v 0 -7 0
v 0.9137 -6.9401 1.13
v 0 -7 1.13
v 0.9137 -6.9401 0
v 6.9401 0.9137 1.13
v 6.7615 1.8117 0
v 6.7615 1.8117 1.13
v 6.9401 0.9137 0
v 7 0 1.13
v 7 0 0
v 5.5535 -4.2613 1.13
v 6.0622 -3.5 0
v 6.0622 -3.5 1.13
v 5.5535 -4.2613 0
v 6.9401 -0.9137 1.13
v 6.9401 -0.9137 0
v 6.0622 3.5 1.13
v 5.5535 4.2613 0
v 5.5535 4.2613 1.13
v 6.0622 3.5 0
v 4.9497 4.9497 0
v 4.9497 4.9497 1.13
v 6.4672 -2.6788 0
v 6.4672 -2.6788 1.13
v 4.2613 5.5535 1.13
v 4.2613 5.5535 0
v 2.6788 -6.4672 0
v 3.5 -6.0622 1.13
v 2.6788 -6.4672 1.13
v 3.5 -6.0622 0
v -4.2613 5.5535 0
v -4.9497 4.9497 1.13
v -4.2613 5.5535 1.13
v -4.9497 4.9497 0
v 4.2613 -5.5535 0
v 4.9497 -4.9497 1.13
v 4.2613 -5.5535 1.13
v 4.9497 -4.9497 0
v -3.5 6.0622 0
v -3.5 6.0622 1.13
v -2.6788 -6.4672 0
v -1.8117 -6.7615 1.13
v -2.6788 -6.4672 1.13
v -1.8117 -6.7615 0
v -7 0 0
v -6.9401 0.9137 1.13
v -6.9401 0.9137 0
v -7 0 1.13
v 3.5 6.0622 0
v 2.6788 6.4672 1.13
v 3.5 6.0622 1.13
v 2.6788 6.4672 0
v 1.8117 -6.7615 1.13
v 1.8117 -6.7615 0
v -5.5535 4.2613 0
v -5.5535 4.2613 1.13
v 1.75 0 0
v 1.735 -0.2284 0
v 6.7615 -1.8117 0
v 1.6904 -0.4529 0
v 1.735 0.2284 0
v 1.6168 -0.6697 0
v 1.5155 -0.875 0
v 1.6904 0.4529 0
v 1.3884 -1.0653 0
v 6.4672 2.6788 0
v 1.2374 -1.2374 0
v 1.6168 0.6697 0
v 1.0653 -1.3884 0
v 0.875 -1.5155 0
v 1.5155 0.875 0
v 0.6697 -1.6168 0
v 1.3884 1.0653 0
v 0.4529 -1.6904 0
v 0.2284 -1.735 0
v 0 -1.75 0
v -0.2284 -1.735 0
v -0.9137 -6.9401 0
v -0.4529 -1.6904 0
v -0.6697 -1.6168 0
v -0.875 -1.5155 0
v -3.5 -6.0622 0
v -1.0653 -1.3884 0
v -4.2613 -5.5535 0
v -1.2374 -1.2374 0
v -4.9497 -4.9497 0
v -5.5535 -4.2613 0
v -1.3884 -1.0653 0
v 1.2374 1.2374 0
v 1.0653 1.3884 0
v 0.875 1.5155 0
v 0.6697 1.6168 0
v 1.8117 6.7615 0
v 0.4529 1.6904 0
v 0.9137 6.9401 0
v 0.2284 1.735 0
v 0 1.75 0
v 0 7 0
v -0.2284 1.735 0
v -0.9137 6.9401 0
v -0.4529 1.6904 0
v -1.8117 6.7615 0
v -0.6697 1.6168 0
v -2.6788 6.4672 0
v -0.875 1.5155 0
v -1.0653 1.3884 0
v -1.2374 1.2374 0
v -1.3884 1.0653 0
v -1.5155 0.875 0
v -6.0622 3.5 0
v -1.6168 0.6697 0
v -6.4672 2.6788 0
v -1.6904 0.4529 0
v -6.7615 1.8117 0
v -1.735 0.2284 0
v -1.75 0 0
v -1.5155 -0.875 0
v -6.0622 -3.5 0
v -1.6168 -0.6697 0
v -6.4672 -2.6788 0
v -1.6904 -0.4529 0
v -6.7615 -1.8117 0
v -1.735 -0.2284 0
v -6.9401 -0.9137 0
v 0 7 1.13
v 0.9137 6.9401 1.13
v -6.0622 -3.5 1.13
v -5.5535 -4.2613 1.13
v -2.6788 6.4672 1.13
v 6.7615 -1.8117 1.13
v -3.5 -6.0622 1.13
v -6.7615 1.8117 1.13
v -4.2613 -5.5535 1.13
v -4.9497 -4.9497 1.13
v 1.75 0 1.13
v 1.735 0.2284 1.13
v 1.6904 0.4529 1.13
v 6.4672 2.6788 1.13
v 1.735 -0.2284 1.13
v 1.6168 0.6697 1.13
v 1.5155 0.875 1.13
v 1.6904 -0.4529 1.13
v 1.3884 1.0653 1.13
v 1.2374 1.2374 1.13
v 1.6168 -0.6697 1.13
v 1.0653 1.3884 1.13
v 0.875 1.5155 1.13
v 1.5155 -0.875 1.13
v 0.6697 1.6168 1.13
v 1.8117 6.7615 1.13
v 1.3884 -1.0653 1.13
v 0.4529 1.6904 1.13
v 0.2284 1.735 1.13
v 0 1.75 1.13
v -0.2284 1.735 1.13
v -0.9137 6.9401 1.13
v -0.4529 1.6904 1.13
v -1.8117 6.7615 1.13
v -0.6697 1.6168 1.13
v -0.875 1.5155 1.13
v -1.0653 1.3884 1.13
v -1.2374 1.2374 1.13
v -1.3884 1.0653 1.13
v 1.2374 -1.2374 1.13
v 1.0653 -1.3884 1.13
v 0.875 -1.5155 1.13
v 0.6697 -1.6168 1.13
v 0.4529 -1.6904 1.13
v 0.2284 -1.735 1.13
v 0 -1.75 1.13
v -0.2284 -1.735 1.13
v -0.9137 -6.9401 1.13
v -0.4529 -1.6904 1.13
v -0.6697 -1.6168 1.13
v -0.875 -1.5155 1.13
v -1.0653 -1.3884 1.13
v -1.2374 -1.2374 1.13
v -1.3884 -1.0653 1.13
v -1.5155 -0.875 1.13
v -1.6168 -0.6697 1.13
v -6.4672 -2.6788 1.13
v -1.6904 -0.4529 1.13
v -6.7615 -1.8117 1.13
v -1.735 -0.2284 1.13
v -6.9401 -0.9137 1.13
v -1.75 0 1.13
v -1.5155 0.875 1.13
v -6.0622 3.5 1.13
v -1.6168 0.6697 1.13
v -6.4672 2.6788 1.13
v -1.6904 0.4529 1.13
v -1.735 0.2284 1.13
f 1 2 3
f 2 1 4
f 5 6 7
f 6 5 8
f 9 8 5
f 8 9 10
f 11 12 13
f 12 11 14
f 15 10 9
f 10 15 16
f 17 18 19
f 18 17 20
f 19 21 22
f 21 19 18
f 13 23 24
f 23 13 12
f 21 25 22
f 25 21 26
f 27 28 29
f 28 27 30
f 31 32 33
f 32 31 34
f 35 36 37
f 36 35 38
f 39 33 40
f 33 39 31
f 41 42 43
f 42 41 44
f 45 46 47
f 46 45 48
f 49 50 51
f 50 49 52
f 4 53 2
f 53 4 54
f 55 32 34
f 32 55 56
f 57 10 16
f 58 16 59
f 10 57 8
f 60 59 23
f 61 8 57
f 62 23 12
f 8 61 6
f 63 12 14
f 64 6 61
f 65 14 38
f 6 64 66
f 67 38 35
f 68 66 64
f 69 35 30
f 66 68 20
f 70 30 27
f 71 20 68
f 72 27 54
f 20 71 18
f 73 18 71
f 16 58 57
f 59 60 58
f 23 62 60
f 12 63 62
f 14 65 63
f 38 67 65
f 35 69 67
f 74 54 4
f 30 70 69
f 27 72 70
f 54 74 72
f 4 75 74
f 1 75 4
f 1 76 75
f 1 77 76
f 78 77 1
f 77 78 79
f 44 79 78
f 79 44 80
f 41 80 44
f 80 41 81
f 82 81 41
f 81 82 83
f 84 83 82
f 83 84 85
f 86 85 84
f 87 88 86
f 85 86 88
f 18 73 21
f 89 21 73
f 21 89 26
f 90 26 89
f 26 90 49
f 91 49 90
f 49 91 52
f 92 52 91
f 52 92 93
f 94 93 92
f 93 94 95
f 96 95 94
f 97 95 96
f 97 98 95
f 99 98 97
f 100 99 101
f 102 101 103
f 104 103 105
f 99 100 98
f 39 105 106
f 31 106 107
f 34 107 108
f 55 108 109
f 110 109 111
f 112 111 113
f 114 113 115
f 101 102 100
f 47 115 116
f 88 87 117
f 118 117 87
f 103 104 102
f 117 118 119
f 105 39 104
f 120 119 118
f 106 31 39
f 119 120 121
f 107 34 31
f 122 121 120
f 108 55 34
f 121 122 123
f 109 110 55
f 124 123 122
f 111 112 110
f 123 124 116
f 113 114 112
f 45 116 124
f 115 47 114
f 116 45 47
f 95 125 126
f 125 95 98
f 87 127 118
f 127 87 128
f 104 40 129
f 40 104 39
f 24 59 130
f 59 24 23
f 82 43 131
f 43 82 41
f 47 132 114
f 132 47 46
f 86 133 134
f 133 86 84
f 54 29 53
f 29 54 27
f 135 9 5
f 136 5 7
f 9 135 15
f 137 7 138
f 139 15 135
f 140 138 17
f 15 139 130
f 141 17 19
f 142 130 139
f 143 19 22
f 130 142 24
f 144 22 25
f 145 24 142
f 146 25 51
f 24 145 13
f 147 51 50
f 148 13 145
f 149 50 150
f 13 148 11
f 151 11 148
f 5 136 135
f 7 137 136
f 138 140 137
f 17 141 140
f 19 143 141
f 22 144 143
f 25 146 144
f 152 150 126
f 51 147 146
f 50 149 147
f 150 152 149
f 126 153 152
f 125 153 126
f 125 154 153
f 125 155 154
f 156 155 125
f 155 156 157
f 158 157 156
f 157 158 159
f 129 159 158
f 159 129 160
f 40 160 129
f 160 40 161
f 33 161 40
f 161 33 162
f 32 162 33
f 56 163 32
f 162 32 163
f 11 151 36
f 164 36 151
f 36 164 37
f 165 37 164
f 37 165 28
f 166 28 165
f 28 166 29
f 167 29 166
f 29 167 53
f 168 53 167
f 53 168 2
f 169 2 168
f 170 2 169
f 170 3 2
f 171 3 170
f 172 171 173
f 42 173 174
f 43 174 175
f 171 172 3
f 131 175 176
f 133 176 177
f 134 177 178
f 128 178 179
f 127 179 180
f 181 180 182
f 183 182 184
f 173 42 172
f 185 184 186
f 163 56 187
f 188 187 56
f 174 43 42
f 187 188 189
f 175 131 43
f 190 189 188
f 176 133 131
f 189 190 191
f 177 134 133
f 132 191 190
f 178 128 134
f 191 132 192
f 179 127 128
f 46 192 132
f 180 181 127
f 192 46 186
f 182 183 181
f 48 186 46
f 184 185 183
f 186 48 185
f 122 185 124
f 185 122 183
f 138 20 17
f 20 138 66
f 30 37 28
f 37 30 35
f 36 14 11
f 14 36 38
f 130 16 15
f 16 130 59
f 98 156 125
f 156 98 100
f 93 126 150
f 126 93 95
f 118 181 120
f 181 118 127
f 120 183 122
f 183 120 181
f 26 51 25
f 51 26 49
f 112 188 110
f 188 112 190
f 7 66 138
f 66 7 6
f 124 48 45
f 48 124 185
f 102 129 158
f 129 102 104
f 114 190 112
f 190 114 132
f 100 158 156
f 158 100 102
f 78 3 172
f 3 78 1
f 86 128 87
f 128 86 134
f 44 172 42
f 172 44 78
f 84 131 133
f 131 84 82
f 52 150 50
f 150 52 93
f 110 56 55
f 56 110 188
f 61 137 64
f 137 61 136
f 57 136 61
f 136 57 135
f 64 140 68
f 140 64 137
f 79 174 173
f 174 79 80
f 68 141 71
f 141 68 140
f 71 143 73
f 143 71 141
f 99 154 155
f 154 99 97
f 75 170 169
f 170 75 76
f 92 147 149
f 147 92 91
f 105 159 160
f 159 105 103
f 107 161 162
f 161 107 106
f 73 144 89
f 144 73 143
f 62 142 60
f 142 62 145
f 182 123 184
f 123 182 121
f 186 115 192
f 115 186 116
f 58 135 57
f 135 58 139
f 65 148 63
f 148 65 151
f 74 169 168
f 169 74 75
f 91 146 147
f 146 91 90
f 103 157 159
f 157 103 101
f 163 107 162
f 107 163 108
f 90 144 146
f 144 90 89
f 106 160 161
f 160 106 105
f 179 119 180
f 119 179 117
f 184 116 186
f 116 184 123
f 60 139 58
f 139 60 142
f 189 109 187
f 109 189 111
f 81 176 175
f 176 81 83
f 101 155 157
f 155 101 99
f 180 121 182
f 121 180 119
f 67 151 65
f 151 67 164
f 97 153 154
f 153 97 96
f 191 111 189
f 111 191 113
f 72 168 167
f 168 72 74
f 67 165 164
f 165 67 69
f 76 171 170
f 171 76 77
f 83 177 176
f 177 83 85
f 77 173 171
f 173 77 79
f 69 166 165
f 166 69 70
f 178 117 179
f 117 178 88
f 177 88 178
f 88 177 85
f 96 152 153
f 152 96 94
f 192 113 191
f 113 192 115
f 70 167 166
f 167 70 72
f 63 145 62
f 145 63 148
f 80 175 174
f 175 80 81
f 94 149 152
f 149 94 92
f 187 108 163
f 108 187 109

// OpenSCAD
// file: parameters.scad
// =============================================================================
// Gen-AU Stacked dual-stator mid-rotor copper-max mega - WOUND-AWARE (HARD GATE)
// ONE mid dual-face Halbach rotor | TWO wound pancake stators | 18 coils x180 t
// =============================================================================

wire_awg            = 26;
wire_od             = 0.45;
turns               = 180;      // +5 vs Gen-AR 175; 18x180x~0.116 ~ 376 m
fill                = 0.70;
layers_per_face     = 2;
wind_build_axial    = layers_per_face * wire_od * fill;   // 0.63
wind_build_radial   = 3 * wire_od * fill;                 // 0.945

coil_id_r           = 17.0;
coil_od_r           = 61.0;
span_deg            = 34.0;     // 9 stations x 40 deg
former_web          = 1.22;     // thinner vs AR 1.25
flange_t            = 0.60;
wall                = 1.2;
slot_w              = 2.4;
mount_hole          = 3.5;
tab_len             = 7.0;

former_bare_h       = former_web + 2 * flange_t;            // 2.42
coil_envelope_h     = former_bare_h + 2 * wind_build_axial; // 3.68

run_clear           = 0.50;
gap_spacer_h        = run_clear + wind_build_axial;         // 1.13
m2m                 = coil_envelope_h + 2 * run_clear;      // 4.68 per gap

coil_stations       = 9;        // per stator; x2 = 18 total
bay_r_in            = coil_id_r - 2.0 - wind_build_radial;
bay_r_out           = coil_od_r + 2.0 + wind_build_radial;
bay_span            = span_deg + 4.0;
bay_offset          = 2.0;
bay_depth           = former_bare_h + wind_build_axial;     // wound sits in bay
stator_back_web     = 2.0;
stator_thick        = bay_depth + stator_back_web;
stator_od           = 156.0;
shaft_clear_stator  = 38.0;
coil_mount_r        = 27.0;

large_pocket_d      = 20.3;
small_pocket_d      = 5.3;
pocket_h            = 5.2;
large_n             = 8;
R_large             = 39.0;     // tighter copper overlap vs AR R=39.5
R_small_inner       = 25.5;
R_small_mid         = 39.0;
R_small_outer       = 55.5;
carrier_od          = 154.0;
mid_carrier_thick   = 12.0;
hub_h               = 10.0;
hub_od              = 30.0;
rotor_b_offset_deg  = 22.5;

shaft_bore          = 8.35;
bearing_d           = 21.85;
bearing_h           = 7.2;
m3_clear            = 3.5;
bolt_r_inner        = 36.0;
bolt_n_inner        = 6;
flange_bolt_r       = 72.0;
flange_bolt_n       = 6;
brace_r             = 68.0;
brace_d             = 4.3;
brace_n             = 4;

spacer_pad_od       = 14.0;
spacer_pad_id       = m3_clear;
endbell_od          = 156.0;
endbell_thick       = 8.0;
endbell_shaft_clear = 10.0;

$fn = 64;
// main file
// Gen-AU gap spacer — h = run_clear + wind_build_axial
include <parameters.scad>;
$fn = 48;
difference() {
    cylinder(d=spacer_pad_od, h=gap_spacer_h);
    translate([0, 0, -0.1]) cylinder(d=spacer_pad_id, h=gap_spacer_h + 0.2);
}
